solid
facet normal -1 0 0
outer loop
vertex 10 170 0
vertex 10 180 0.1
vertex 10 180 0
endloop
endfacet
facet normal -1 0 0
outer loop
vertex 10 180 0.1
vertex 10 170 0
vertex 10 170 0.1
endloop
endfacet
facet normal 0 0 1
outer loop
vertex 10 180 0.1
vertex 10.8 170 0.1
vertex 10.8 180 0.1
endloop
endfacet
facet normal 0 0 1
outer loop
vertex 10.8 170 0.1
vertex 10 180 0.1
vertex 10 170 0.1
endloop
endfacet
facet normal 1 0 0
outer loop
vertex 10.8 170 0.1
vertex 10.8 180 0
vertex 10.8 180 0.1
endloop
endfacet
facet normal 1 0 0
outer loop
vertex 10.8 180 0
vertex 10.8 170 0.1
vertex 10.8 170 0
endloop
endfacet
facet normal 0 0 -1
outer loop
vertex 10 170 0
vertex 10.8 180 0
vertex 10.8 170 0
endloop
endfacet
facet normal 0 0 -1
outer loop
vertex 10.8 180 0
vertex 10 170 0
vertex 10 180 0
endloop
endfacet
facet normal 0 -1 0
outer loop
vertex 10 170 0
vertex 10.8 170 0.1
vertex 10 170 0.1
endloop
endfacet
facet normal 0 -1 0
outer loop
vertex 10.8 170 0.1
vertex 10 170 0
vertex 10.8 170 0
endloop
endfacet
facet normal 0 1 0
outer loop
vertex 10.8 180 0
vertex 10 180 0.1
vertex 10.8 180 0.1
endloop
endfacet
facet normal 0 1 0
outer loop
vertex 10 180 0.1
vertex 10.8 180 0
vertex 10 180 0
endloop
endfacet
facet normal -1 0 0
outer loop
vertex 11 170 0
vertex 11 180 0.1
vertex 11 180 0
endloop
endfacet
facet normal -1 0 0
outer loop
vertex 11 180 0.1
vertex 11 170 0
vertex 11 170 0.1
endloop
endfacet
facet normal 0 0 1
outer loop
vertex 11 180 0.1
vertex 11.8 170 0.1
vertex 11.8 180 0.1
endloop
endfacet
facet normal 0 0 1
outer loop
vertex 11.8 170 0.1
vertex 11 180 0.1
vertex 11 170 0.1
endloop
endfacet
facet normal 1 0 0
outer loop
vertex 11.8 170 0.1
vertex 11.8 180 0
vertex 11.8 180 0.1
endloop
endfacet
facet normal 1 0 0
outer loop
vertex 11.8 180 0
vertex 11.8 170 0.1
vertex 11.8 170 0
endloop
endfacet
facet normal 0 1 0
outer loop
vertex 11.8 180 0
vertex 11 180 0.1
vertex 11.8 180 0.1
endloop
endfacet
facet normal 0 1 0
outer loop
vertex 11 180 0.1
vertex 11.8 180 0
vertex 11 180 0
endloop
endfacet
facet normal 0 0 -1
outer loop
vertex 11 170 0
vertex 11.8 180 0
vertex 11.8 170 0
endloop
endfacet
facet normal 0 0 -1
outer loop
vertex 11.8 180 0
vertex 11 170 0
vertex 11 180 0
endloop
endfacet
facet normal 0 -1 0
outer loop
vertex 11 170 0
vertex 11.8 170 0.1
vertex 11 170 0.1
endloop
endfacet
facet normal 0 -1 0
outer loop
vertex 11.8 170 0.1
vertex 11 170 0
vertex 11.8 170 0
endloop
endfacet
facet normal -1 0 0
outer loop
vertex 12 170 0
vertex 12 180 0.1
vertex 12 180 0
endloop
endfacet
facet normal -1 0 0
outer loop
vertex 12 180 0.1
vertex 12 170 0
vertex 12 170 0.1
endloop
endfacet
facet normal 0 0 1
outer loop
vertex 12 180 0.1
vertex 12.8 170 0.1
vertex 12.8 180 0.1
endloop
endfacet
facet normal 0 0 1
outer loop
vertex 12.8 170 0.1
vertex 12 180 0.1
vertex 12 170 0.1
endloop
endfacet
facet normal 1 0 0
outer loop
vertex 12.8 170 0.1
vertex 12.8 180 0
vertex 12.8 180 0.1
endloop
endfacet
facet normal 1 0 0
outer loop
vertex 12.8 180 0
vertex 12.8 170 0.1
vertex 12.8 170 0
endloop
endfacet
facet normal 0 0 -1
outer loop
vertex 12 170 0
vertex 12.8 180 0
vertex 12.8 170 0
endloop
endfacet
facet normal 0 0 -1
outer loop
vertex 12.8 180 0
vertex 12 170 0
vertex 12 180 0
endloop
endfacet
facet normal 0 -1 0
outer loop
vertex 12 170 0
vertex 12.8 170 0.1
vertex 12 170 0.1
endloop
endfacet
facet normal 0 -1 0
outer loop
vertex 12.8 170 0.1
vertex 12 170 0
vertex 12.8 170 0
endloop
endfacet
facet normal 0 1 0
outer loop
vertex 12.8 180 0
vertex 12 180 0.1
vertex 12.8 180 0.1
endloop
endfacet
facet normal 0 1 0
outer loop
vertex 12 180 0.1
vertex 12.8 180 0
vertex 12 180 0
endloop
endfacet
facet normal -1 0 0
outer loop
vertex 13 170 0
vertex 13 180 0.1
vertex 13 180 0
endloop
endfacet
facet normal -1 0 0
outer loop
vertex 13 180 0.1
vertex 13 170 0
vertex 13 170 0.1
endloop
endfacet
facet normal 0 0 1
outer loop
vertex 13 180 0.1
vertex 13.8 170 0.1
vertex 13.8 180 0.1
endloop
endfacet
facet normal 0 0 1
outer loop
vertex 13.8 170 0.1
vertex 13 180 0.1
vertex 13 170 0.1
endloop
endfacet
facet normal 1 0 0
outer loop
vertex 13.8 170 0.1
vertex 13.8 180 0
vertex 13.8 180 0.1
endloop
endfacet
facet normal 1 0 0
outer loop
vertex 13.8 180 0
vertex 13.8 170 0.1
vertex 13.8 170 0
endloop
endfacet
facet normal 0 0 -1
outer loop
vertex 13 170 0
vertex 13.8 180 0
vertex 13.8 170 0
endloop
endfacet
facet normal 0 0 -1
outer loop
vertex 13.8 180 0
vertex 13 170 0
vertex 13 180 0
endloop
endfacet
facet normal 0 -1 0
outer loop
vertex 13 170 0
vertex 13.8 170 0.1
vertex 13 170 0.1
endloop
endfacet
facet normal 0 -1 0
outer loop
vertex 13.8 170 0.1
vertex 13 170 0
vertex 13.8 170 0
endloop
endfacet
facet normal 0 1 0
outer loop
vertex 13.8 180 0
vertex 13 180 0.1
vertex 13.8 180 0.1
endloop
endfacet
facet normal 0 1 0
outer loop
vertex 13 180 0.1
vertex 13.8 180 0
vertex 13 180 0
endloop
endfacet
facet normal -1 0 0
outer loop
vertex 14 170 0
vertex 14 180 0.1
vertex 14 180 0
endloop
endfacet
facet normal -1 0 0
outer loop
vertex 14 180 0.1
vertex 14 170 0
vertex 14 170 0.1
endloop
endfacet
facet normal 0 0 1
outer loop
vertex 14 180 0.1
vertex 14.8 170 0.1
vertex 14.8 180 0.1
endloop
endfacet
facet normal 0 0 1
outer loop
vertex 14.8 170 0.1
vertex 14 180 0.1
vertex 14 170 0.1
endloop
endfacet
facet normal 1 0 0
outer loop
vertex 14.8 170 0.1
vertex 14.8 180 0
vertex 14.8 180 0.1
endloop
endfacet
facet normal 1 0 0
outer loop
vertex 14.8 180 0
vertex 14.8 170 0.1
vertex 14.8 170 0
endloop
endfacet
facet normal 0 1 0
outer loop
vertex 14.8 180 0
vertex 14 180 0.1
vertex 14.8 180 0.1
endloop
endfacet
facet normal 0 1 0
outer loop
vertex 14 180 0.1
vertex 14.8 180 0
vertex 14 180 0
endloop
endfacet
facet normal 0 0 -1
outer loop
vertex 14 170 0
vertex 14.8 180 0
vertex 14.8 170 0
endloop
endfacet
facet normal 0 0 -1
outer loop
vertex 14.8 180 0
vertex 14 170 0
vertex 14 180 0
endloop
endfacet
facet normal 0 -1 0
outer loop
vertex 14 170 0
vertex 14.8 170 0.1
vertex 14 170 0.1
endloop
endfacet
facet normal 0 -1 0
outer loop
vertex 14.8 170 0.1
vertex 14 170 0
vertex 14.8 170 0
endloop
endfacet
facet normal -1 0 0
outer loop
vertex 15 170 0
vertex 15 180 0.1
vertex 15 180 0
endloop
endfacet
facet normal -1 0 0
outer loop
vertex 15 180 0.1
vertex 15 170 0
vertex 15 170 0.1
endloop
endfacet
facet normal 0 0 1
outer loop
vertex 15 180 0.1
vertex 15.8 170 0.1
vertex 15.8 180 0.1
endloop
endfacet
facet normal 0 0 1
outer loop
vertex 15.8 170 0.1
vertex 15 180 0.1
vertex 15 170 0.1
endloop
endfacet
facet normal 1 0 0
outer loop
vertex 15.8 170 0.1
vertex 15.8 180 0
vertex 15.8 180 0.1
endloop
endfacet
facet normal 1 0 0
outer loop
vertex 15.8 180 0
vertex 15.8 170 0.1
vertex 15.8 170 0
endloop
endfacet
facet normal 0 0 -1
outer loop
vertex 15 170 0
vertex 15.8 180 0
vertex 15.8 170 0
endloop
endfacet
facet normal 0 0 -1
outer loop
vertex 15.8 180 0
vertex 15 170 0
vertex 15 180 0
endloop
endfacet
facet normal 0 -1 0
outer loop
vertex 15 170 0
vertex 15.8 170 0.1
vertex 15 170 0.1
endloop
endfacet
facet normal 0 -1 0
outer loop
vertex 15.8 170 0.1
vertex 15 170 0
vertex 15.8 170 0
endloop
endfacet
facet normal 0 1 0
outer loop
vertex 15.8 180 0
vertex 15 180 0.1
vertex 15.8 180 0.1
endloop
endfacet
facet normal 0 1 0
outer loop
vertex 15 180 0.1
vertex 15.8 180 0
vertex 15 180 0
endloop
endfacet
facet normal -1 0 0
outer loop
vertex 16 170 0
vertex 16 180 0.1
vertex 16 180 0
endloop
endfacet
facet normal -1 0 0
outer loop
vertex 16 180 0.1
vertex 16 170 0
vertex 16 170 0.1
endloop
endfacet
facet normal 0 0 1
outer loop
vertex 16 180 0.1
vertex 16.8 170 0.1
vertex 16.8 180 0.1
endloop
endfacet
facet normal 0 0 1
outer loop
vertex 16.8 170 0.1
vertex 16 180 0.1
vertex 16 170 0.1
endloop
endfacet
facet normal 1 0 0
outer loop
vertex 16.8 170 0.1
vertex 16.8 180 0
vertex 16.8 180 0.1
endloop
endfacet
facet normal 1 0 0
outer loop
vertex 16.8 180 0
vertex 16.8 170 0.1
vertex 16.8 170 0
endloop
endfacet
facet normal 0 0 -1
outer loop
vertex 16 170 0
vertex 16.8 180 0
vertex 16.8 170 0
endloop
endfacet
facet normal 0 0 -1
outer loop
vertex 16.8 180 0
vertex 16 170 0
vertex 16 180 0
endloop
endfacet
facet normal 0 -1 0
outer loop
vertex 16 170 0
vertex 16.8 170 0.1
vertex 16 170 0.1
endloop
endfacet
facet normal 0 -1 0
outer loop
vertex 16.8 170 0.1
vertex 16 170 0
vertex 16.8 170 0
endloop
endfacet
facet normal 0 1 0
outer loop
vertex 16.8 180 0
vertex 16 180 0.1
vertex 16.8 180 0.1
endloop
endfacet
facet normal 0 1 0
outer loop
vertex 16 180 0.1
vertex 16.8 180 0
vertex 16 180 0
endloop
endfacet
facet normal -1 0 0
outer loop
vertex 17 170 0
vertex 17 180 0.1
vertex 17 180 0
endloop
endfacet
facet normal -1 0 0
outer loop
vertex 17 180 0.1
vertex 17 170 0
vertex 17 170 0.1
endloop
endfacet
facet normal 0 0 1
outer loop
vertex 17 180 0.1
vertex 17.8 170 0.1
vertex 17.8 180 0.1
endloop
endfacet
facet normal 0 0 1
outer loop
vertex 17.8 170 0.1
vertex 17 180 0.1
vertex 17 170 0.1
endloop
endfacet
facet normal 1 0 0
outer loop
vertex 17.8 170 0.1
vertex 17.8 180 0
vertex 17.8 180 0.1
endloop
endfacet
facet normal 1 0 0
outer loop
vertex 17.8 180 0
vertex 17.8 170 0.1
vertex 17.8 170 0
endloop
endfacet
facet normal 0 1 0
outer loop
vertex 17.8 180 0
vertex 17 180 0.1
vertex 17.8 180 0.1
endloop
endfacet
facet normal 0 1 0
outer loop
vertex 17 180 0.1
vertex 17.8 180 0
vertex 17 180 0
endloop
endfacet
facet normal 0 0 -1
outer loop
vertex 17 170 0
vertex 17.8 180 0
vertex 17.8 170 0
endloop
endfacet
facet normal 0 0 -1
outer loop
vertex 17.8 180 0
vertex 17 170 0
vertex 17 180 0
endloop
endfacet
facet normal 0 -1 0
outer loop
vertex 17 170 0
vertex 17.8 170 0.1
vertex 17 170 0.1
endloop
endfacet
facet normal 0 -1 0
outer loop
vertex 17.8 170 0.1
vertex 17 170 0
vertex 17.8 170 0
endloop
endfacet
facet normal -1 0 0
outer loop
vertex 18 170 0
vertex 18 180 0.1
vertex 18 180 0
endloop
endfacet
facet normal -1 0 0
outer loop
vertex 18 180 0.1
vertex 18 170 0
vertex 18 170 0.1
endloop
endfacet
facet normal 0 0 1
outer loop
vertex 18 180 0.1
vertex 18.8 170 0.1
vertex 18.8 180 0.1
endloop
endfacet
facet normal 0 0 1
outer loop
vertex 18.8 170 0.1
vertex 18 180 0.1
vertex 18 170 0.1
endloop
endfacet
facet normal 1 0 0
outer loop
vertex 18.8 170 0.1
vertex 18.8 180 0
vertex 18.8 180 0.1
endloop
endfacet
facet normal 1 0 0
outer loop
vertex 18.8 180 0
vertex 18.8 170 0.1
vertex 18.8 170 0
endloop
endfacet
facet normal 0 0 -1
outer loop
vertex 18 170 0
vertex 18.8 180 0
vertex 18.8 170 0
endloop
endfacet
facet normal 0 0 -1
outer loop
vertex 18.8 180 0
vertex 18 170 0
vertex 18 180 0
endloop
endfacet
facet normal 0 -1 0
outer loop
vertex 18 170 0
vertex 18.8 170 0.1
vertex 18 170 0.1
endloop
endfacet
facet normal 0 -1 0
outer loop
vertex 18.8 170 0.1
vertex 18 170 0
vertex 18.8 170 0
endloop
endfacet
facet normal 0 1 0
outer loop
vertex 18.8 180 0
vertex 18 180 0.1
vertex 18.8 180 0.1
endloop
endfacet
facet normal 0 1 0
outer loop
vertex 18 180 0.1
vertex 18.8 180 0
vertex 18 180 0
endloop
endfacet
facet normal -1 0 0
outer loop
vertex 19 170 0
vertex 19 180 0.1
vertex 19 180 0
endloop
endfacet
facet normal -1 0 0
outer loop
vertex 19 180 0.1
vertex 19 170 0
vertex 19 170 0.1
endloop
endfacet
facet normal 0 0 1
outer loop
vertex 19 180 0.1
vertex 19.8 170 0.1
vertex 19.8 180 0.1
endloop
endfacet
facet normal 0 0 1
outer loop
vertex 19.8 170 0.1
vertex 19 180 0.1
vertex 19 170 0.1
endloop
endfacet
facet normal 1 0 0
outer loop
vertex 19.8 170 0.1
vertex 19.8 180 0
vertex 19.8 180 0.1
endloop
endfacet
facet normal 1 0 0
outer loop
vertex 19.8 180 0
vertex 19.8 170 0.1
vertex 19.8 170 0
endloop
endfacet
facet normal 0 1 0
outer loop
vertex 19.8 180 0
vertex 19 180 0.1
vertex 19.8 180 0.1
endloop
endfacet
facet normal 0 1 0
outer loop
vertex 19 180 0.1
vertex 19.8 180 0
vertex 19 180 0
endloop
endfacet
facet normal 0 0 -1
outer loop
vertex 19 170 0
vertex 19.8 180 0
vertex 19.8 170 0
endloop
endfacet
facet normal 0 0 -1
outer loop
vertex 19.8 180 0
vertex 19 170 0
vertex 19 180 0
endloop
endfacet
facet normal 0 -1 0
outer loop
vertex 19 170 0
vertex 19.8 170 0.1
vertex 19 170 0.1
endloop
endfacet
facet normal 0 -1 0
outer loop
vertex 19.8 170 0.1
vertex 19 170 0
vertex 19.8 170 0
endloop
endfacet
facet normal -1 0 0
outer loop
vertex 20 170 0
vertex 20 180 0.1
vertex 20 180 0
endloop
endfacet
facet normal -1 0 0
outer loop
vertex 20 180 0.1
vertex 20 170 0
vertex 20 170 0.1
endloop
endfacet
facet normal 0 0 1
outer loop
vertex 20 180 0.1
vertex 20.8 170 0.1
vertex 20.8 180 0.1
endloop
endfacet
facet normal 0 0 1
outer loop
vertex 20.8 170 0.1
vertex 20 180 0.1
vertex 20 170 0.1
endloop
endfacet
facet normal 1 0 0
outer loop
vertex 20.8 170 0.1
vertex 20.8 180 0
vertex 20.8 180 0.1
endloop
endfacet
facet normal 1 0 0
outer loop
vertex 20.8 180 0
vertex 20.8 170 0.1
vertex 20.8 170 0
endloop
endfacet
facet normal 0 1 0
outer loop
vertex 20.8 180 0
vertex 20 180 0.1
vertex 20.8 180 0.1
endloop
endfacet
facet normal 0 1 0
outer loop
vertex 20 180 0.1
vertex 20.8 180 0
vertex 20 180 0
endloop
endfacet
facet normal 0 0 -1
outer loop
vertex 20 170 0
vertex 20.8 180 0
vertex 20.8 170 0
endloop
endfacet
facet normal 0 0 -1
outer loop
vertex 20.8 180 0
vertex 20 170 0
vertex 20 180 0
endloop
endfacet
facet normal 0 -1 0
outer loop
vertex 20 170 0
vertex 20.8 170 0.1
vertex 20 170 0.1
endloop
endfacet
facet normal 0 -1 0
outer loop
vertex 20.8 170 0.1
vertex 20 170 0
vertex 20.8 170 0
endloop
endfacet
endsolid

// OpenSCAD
translate([10+0,10+160,0])
        for (i = [0 : 10]){
            translate([i,0,0])
                cube(size = [0.8,10,0.1]);
    }
